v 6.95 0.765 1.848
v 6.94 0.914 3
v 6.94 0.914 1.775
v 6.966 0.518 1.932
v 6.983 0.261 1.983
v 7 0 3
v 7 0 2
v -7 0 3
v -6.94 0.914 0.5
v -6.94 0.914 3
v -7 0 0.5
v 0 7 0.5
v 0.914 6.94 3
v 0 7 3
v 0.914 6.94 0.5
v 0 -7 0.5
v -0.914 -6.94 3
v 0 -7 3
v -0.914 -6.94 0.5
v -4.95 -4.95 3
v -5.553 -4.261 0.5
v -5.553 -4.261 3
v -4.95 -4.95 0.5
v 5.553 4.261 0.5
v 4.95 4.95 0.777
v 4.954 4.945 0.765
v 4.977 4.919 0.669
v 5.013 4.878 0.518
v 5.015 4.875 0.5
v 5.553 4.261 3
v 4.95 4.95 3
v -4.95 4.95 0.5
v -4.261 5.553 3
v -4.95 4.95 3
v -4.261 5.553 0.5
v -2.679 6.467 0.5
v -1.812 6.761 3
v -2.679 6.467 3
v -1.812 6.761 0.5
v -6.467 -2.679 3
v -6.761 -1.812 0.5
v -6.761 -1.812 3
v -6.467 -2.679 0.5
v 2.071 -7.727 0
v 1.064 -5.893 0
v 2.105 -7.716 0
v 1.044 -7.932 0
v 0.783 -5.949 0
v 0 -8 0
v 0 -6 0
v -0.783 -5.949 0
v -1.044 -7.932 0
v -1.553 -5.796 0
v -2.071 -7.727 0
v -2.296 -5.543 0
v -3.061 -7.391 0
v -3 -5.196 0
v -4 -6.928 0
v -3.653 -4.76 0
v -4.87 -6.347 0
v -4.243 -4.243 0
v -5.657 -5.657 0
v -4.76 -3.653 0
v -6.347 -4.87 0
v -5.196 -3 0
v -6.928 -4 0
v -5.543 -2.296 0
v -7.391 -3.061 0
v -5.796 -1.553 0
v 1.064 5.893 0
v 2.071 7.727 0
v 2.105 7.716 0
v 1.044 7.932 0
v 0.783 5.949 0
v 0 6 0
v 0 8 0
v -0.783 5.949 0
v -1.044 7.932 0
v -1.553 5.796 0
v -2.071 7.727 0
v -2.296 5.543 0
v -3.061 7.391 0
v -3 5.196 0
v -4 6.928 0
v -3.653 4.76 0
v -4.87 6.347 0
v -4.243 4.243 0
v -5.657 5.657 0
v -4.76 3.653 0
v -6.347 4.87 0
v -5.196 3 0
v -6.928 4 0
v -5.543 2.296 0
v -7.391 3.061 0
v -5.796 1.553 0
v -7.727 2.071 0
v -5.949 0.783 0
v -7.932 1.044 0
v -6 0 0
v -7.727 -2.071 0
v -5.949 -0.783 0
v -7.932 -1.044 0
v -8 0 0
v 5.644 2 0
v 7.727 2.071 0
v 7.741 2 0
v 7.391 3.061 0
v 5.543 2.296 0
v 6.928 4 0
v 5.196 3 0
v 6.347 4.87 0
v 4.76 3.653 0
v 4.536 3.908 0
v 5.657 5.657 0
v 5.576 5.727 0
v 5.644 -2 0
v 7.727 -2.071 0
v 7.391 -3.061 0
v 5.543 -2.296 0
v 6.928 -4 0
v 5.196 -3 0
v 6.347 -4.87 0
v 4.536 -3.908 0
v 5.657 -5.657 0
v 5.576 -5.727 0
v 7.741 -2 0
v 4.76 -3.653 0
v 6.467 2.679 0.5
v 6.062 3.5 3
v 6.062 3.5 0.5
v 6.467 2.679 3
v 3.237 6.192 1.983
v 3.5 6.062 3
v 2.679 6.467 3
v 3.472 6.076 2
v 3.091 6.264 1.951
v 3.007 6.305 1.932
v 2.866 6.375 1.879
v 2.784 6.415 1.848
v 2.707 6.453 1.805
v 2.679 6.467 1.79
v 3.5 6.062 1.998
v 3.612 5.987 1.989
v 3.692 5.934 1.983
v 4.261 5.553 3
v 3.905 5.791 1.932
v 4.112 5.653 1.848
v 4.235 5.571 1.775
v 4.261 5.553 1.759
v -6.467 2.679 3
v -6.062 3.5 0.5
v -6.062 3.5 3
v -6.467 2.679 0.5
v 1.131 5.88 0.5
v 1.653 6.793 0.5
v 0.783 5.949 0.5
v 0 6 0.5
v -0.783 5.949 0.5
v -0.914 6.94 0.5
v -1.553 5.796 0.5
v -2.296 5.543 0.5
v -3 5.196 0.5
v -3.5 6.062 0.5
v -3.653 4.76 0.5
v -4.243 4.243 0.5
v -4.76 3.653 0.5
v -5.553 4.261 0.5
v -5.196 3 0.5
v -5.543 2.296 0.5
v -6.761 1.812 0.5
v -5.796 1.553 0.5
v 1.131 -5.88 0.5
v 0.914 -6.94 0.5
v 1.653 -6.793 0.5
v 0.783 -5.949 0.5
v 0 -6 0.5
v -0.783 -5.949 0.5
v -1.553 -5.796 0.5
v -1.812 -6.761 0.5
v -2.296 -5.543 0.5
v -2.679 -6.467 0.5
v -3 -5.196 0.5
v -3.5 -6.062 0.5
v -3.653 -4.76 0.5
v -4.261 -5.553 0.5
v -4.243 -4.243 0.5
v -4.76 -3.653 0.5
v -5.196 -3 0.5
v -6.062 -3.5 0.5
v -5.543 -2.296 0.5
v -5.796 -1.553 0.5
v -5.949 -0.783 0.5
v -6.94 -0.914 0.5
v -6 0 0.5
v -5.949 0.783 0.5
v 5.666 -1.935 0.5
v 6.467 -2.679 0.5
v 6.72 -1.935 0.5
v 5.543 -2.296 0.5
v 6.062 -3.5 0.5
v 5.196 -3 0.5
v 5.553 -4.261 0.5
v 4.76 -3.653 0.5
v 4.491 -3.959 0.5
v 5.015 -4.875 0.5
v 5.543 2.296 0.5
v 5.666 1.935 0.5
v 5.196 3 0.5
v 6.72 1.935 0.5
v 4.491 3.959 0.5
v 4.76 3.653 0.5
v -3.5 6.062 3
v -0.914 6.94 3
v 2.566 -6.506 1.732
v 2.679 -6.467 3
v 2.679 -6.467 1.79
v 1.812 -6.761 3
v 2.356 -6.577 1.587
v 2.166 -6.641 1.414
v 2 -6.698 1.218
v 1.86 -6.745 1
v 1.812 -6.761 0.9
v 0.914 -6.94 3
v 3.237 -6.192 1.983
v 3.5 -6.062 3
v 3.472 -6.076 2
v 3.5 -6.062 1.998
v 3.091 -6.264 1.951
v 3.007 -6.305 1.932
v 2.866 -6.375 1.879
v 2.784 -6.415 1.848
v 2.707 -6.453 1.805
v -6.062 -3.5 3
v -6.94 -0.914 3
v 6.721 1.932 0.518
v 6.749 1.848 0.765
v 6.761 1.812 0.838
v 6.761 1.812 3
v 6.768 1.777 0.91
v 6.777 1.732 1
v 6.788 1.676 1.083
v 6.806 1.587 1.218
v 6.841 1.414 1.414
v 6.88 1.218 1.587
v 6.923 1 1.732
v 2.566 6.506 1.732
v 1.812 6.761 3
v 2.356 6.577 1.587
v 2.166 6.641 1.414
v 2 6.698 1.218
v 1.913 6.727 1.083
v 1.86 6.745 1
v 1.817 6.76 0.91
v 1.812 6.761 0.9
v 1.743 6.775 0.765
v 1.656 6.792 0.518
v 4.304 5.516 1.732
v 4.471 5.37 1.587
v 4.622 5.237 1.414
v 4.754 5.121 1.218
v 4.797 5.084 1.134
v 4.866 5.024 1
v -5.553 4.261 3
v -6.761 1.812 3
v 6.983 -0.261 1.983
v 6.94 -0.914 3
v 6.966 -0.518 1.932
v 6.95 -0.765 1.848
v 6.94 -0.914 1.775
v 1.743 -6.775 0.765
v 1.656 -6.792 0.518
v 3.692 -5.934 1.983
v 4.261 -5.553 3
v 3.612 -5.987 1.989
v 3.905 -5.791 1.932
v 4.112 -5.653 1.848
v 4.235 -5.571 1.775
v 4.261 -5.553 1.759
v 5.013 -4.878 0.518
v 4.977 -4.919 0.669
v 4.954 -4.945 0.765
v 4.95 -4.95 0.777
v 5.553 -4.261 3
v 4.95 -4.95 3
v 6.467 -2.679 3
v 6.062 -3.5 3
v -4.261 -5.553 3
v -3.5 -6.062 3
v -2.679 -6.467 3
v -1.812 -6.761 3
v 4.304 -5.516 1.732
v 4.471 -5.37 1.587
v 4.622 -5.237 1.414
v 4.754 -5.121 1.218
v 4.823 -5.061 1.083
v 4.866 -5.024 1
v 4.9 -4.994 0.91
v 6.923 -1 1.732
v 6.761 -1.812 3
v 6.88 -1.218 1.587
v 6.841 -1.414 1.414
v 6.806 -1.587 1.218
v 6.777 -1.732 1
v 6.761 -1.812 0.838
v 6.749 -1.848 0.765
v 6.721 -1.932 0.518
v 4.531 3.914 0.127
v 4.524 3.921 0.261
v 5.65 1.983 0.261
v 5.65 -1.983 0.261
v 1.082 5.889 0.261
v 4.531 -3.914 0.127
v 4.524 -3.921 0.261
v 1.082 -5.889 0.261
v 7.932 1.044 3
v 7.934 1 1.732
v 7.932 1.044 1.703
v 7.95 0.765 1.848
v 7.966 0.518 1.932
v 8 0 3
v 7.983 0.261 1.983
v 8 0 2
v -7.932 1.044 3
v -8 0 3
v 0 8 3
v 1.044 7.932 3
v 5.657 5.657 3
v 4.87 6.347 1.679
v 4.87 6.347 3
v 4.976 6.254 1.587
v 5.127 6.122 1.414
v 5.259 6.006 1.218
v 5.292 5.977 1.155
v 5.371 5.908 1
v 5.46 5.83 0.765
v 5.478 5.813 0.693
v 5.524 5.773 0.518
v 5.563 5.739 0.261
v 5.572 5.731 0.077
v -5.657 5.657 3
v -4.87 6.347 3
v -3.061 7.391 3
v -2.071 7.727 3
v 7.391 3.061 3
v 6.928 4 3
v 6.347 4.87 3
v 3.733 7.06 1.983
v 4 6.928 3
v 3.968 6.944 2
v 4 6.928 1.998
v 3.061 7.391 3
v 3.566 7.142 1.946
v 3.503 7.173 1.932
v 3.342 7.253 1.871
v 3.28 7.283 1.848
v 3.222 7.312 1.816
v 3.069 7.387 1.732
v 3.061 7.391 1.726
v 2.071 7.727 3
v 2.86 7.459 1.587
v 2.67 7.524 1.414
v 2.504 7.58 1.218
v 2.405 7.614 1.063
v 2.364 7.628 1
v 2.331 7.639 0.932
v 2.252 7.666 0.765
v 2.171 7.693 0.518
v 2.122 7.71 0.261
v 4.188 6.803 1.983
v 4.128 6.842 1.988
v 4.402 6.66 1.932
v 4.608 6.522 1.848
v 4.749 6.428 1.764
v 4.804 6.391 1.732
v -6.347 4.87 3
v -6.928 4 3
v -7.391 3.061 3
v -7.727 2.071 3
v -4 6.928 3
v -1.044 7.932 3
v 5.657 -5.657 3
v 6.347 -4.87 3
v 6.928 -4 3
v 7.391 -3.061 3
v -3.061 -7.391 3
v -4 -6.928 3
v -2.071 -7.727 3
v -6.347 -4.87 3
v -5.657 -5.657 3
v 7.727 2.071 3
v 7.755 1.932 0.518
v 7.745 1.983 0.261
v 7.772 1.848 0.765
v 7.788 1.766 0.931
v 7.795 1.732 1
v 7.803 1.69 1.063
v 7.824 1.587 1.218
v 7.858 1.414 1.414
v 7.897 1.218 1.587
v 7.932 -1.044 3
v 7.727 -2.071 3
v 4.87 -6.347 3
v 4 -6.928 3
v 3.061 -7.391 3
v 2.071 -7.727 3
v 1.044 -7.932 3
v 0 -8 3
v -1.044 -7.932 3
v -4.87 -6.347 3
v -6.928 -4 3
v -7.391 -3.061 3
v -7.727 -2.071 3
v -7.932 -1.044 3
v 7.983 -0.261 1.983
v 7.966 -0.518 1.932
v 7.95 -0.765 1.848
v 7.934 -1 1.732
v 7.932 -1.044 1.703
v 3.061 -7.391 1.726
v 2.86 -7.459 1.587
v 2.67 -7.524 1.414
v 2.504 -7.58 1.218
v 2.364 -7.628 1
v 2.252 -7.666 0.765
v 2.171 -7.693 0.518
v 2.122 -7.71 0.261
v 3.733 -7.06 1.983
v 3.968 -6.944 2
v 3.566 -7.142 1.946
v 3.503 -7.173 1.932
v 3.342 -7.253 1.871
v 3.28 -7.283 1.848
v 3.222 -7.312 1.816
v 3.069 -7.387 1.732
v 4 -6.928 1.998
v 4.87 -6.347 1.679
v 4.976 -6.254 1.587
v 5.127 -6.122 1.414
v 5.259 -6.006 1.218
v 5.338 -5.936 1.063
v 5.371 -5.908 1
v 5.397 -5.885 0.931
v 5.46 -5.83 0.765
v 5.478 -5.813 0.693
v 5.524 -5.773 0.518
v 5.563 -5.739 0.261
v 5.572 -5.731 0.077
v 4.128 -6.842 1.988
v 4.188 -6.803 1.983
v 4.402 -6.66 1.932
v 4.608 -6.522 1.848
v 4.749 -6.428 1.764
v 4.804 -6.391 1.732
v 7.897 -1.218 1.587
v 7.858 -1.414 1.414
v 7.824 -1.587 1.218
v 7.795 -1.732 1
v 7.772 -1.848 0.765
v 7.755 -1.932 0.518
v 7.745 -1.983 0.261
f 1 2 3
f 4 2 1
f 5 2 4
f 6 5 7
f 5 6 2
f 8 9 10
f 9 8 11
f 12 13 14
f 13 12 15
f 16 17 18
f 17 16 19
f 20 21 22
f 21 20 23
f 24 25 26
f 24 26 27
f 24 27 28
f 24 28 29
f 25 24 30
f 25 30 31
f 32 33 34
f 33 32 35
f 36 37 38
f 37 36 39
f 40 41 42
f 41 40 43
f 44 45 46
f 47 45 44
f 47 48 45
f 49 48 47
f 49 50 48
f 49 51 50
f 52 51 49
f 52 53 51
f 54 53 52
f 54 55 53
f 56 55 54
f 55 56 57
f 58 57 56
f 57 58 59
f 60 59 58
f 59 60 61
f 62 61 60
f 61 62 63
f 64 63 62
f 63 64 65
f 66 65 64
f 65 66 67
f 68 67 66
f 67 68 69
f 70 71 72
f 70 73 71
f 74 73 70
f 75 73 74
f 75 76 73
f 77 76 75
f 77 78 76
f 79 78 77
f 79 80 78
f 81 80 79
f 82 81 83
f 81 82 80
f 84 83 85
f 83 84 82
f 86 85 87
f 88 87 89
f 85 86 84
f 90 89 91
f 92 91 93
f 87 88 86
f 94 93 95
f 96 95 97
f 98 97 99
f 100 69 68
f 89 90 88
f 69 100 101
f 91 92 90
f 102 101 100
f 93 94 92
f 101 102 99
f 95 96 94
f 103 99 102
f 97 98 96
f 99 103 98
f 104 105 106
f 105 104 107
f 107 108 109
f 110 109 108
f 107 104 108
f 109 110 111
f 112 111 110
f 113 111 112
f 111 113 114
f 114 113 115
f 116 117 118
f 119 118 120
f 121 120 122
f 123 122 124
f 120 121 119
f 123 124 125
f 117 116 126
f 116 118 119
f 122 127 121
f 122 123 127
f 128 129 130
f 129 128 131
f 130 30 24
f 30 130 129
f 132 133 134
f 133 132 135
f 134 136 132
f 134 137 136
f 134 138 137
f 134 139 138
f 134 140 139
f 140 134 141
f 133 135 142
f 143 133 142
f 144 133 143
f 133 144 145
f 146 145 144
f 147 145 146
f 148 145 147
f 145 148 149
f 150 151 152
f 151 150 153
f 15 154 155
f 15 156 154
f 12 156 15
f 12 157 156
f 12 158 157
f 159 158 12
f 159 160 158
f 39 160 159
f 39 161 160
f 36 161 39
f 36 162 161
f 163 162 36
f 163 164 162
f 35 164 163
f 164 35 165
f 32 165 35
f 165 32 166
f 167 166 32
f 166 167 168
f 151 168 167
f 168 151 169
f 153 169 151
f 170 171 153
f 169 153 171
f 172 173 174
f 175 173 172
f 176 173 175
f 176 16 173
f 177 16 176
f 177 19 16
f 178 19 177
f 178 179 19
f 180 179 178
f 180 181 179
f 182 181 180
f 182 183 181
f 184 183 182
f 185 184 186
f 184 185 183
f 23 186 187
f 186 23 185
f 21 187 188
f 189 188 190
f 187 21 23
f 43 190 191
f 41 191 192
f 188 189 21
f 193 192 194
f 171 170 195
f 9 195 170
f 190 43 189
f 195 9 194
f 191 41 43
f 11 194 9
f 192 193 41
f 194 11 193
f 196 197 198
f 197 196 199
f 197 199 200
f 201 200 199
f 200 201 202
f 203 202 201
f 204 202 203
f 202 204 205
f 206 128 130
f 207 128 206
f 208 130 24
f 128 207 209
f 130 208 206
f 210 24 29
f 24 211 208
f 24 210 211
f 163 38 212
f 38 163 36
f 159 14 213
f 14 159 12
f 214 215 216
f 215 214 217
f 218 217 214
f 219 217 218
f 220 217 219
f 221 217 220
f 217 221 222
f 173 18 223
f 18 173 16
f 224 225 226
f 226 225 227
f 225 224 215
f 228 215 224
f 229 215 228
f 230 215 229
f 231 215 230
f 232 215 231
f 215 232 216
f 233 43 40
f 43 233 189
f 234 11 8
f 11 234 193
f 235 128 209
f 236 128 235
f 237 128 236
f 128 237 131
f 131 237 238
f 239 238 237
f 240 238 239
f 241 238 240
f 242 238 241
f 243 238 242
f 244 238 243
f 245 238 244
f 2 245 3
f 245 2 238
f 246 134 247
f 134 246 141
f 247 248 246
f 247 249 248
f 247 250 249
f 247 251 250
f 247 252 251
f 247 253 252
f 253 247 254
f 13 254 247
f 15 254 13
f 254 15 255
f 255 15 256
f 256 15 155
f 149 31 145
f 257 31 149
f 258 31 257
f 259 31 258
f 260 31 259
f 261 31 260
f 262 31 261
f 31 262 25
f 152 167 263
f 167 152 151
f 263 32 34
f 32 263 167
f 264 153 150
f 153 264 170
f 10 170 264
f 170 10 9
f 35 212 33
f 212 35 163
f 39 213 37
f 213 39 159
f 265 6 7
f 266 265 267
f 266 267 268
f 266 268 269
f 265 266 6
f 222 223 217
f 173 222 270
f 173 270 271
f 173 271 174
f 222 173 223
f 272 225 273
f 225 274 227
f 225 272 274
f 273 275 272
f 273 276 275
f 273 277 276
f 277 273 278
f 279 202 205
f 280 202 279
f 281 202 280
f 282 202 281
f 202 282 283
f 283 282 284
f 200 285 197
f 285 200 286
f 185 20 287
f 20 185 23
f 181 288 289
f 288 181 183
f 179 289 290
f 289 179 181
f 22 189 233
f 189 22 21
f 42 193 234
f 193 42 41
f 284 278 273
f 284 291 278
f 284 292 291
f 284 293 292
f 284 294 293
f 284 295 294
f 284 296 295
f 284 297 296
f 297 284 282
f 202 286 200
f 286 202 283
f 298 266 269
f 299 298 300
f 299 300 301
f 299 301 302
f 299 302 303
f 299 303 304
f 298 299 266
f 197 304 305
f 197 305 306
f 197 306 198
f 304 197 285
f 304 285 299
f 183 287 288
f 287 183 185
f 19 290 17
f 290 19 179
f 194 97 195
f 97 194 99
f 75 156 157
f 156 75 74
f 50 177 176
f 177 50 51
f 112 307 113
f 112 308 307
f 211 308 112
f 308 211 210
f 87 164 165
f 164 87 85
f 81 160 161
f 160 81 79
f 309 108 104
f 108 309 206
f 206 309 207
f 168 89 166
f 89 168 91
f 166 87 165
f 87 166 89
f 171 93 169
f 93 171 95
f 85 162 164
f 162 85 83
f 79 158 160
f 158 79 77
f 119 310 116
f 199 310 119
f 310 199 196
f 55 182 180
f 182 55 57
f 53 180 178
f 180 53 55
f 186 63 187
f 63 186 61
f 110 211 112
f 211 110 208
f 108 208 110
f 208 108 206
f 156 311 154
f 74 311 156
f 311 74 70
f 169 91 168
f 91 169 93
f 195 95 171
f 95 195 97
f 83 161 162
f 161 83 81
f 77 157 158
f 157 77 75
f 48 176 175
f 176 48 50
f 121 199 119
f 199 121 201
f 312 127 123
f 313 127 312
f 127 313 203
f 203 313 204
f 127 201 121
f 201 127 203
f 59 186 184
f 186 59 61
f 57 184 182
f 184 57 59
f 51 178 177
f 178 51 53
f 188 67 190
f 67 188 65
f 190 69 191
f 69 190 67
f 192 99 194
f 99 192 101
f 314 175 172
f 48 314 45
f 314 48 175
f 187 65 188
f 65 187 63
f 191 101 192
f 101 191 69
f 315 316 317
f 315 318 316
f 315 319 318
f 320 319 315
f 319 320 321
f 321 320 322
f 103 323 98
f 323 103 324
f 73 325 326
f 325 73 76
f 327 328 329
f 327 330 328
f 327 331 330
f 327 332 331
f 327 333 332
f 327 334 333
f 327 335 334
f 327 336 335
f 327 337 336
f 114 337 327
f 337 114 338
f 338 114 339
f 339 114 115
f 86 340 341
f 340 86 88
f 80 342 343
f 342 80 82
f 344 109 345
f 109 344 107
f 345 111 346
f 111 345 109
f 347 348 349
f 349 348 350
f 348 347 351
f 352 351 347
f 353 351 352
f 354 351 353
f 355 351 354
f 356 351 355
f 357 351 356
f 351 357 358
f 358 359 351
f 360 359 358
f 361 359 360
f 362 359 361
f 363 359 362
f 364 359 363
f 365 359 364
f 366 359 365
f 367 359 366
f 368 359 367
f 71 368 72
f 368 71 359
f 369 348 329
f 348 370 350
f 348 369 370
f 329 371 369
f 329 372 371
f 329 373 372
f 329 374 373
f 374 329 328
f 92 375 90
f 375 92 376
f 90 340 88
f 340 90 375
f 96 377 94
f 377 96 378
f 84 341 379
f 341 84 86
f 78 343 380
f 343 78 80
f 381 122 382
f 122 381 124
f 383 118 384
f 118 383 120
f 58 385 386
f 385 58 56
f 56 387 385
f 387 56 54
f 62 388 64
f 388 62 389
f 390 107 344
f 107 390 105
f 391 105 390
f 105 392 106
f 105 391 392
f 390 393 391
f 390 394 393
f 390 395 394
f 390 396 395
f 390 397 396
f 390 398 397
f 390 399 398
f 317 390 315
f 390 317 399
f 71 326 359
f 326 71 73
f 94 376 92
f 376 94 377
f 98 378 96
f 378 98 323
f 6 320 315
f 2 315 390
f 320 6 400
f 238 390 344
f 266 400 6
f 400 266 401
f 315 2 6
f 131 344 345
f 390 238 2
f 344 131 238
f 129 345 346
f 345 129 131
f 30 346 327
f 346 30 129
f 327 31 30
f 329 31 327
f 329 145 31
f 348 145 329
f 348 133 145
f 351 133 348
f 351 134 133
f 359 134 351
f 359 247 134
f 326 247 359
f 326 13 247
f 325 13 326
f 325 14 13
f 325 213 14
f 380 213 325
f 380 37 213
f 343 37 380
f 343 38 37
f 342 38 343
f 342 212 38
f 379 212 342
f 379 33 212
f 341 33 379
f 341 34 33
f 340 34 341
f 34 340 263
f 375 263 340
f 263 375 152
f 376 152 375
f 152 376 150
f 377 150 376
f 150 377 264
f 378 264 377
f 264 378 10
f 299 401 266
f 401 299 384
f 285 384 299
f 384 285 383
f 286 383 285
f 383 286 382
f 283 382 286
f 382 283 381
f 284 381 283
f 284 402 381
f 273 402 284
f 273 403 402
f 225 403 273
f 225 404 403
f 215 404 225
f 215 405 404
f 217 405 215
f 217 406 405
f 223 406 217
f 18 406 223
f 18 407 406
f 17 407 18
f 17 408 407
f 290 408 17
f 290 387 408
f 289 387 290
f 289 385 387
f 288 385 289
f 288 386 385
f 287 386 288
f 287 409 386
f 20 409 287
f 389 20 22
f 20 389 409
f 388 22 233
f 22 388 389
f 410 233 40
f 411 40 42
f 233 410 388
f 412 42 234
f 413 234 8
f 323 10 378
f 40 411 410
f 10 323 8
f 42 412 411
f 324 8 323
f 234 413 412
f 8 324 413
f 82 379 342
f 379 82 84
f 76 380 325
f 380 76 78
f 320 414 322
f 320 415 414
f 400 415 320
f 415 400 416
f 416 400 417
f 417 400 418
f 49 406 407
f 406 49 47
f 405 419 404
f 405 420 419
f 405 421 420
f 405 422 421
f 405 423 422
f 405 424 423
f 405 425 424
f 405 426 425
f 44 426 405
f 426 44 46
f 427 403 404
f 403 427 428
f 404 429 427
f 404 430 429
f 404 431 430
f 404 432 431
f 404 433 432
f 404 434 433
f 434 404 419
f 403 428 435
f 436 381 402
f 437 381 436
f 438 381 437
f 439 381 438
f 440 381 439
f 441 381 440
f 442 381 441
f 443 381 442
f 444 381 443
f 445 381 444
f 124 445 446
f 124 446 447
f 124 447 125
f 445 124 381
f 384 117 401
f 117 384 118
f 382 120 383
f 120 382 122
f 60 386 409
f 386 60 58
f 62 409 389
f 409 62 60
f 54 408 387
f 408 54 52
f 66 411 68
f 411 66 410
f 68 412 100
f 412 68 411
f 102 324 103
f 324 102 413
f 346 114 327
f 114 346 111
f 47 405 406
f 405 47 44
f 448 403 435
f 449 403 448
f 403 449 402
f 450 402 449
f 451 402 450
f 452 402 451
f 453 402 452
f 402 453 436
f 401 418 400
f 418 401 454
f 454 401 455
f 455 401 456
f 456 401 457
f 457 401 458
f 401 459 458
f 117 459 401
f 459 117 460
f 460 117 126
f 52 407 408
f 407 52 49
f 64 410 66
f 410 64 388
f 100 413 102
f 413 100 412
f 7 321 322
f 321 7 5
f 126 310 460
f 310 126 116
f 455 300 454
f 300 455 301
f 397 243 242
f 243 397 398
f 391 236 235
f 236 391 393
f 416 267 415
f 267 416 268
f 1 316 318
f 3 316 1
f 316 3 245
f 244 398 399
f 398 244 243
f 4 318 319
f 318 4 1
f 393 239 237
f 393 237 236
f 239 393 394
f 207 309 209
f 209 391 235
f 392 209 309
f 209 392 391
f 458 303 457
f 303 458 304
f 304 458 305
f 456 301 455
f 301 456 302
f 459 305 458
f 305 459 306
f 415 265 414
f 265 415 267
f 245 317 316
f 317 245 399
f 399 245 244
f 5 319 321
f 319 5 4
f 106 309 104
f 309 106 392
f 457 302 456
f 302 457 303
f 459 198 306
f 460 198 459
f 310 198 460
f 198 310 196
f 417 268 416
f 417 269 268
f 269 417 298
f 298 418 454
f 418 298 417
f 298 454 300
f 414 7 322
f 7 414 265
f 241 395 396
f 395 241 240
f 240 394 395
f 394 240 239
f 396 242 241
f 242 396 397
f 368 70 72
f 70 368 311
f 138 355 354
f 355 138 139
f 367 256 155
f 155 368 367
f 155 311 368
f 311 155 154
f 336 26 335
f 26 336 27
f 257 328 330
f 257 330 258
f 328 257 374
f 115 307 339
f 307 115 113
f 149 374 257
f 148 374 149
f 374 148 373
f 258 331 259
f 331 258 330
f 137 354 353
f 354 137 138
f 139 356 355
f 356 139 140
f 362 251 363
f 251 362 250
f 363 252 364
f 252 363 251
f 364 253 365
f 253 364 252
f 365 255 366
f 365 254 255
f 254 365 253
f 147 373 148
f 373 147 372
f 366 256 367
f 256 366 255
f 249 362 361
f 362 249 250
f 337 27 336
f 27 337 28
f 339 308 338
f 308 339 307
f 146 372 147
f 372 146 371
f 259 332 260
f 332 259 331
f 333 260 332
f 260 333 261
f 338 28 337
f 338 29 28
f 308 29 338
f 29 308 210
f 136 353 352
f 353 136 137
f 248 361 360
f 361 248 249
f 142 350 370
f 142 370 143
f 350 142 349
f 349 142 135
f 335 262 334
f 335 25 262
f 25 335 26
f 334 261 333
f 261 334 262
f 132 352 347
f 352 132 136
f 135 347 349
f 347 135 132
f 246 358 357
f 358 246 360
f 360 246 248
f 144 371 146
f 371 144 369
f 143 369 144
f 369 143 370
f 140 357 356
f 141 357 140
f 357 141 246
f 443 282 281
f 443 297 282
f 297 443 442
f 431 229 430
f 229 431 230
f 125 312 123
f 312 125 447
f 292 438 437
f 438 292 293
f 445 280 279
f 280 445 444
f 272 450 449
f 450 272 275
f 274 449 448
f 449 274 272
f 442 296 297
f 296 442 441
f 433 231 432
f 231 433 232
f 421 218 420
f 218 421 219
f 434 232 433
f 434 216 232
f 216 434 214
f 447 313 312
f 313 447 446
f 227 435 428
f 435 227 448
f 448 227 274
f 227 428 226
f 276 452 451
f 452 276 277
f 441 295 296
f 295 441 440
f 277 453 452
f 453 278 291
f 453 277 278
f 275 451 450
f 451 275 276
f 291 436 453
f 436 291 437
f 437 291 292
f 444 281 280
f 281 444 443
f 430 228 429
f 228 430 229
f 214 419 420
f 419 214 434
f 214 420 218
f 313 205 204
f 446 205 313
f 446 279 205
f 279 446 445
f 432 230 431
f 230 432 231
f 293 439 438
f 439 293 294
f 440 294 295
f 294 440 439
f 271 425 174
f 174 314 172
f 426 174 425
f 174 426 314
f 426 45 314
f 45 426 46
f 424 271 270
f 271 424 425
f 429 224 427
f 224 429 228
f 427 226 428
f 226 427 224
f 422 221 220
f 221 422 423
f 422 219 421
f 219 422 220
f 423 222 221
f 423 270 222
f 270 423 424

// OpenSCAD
// file: ../build_environments.scad
// build_environments.scad: modules to build level sections
//

module pool(diameter=10.0, wall_height=2.0, step_width=3.0, connections=[])
{
    difference() {
        union() {
        difference() {
            cylinder(h=0.5,r1=diameter+step_width,r2=diameter+step_width,$fn=48);
            translate([0,0,-0.1])
                cylinder(h=0.7,r1=diameter,r2=diameter,$fn=48);
        }
        difference() {
            cylinder(h=wall_height,r1=diameter+step_width+1.0,r2=diameter+step_width+1.0,$fn=48);
            translate([0,0,-0.1])
                cylinder(h=wall_height+0.2,r1=diameter+step_width,r2=diameter+step_width,$fn=48);
        }
        }
    
        for (c = connections)
        {
            rotate([0,90,0]) {
                angle = atan2(c[1],c[0]);
                rotate([-angle,0,0]) {
                    cylinder(h=diameter+5.0,r1=c[2],r2=c[2],$fn=48);
                }
            }
        }
    }
}

module straight(length=10.0, width=2.0, dy1=0.0, dy2=0.0, dz=0.0)
{
    dims = [0, 0, 0, 0, 0, (dz/length)];
    matrix = [
        [ 1, dims[0], dims[1], 0 ],
        [ dims[2], 1, dims[4], 0 ],
        [ dims[5], dims[3], 1, 0 ],
        [ 0, 0, 0, 1 ]
    ];
    multmatrix(matrix)
    difference() {
        translate([dy1,0,0])
        union() {
            rotate([0,90,0]) {
                difference() {
                    cylinder(h=(length-dy1-dy2),r1=width+1.0,r2=width+1.0,$fn=24);
                    translate([0,0,-0.1])
                        cylinder(h=(length-dy1-dy2+0.2),r1=width,r2=width,$fn=24);
                }
                difference() {
                    cylinder(h=1.0,r1=width+2.0,r2=width+2.0,$fn=24);
                    translate([0,0,-0.1])
                        cylinder(h=1.2,r1=width,r2=width,$fn=24);
                }
                translate([0,0,(length-dy1-dy2)-1.0]) {
                    difference() {
                        cylinder(h=1.0,r1=width+2.0,r2=width+2.0,$fn=24);
                        translate([0,0,-0.1])
                            cylinder(h=1.2,r1=width,r2=width,$fn=24);
                    }
                }
            }
        }
        translate([0,0,-(2*width+4.0)/2])
            cube([3*length,3*length,2*width+4.0],center=true);
    }
}

module curve(p0=[0,0], center=[0,0], dir=1, angle=0.0, width=2.0)
{
    radius = sqrt((p0[0]-center[0])*(p0[0]-center[0]) + (p0[1]-center[1])*(p0[1]-center[1]));
    if (dir == 0) {
        difference() {
            rotate([0,0,-90])
            difference() {
                rotate_extrude(angle = angle, convexity = 10, $fn=32)
                    translate([radius, 0, 0])
                        circle(r = width+1.0,$fn=24);
                rotate([0,0,-1.0])
                    rotate_extrude(angle = angle+2.0, convexity = 10, $fn=32)
                        translate([radius, 0, 0])
                            circle(r = width,$fn=24);
            }
            translate([0,0,-(2*width+4.0)/2])
                cube([5*radius,5*radius,2*width+4.0],center=true);
        }
    }
    else {
        difference() {
            rotate([0,0,90])
            difference() {
                rotate_extrude(angle = -angle, convexity = 10, $fn=32)
                    translate([radius, 0, 0])
                        circle(r = width+1.0,$fn=24);
                rotate([0,0,1.0])
                    rotate_extrude(angle = -angle-2.0, convexity = 10, $fn=32)
                        translate([radius, 0, 0])
                            circle(r = width,$fn=24);
            }
            translate([0,0,-(2*width+4.0)/2])
                cube([5*radius,5*radius,2*width+4.0],center=true);
        }
    }

}

// test pool
//pool(diameter=12.0000, wall_height=3.0000, step_width=3.0000, connections=[[0.0000,-26.0000,2.0000], [23.6074,0.0000,2.0000]]);

// test straight, slope
//straight(length=26.0000, width=2.0000, dy1=11.8322, dy2=6.7082, dz=0.0000);
//straight(length=29.1549, width=12.0000, dy1=0.0000, dy2=0.0000, dz=-15.0000);

// test curve
//curve(p0=[23.6074, 0.0000], center=[23.6074, 5.0000], dir=0, angle=60.1011, width=2.0000);
//curve(p0=[33.6426, 12.4219], center=[37.9771, 9.9295], dir=1, angle=120.4627, width=2.0000);
// main file
use <../build_environments.scad>;
pool(diameter=6.0000, wall_height=3.0000, step_width=1.0000, connections=[[16.0000,0.0000,2.0000], [8.0000,14.0000,2.0000], [8.0000,-14.0000,2.0000]]);
